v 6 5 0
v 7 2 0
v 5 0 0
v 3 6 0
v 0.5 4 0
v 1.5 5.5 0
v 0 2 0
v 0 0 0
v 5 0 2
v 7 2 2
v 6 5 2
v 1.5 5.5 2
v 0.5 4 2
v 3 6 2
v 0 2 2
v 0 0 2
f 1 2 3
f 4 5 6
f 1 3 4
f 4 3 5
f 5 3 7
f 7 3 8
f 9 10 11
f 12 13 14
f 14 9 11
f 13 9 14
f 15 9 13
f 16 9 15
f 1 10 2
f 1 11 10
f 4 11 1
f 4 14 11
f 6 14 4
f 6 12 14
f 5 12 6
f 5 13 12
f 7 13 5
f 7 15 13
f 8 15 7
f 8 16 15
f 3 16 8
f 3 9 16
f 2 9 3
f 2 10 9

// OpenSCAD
// Locking Key Module
module locking_key() {
    linear_extrude(height = 2)  // consistent thickness
    polygon(points=[
        [0, 0],         // bottom left
        [5, 0],         // bottom right
        [7, 2],         // angled edge
        [6, 5],         // top right
        [3, 6],         // top mid
        [1.5, 5.5],     // rounded tab start
        [0.5, 4],       // rounded tab mid
        [0, 2]          // back to left
    ]);
}

// Render the locking key
locking_key();
